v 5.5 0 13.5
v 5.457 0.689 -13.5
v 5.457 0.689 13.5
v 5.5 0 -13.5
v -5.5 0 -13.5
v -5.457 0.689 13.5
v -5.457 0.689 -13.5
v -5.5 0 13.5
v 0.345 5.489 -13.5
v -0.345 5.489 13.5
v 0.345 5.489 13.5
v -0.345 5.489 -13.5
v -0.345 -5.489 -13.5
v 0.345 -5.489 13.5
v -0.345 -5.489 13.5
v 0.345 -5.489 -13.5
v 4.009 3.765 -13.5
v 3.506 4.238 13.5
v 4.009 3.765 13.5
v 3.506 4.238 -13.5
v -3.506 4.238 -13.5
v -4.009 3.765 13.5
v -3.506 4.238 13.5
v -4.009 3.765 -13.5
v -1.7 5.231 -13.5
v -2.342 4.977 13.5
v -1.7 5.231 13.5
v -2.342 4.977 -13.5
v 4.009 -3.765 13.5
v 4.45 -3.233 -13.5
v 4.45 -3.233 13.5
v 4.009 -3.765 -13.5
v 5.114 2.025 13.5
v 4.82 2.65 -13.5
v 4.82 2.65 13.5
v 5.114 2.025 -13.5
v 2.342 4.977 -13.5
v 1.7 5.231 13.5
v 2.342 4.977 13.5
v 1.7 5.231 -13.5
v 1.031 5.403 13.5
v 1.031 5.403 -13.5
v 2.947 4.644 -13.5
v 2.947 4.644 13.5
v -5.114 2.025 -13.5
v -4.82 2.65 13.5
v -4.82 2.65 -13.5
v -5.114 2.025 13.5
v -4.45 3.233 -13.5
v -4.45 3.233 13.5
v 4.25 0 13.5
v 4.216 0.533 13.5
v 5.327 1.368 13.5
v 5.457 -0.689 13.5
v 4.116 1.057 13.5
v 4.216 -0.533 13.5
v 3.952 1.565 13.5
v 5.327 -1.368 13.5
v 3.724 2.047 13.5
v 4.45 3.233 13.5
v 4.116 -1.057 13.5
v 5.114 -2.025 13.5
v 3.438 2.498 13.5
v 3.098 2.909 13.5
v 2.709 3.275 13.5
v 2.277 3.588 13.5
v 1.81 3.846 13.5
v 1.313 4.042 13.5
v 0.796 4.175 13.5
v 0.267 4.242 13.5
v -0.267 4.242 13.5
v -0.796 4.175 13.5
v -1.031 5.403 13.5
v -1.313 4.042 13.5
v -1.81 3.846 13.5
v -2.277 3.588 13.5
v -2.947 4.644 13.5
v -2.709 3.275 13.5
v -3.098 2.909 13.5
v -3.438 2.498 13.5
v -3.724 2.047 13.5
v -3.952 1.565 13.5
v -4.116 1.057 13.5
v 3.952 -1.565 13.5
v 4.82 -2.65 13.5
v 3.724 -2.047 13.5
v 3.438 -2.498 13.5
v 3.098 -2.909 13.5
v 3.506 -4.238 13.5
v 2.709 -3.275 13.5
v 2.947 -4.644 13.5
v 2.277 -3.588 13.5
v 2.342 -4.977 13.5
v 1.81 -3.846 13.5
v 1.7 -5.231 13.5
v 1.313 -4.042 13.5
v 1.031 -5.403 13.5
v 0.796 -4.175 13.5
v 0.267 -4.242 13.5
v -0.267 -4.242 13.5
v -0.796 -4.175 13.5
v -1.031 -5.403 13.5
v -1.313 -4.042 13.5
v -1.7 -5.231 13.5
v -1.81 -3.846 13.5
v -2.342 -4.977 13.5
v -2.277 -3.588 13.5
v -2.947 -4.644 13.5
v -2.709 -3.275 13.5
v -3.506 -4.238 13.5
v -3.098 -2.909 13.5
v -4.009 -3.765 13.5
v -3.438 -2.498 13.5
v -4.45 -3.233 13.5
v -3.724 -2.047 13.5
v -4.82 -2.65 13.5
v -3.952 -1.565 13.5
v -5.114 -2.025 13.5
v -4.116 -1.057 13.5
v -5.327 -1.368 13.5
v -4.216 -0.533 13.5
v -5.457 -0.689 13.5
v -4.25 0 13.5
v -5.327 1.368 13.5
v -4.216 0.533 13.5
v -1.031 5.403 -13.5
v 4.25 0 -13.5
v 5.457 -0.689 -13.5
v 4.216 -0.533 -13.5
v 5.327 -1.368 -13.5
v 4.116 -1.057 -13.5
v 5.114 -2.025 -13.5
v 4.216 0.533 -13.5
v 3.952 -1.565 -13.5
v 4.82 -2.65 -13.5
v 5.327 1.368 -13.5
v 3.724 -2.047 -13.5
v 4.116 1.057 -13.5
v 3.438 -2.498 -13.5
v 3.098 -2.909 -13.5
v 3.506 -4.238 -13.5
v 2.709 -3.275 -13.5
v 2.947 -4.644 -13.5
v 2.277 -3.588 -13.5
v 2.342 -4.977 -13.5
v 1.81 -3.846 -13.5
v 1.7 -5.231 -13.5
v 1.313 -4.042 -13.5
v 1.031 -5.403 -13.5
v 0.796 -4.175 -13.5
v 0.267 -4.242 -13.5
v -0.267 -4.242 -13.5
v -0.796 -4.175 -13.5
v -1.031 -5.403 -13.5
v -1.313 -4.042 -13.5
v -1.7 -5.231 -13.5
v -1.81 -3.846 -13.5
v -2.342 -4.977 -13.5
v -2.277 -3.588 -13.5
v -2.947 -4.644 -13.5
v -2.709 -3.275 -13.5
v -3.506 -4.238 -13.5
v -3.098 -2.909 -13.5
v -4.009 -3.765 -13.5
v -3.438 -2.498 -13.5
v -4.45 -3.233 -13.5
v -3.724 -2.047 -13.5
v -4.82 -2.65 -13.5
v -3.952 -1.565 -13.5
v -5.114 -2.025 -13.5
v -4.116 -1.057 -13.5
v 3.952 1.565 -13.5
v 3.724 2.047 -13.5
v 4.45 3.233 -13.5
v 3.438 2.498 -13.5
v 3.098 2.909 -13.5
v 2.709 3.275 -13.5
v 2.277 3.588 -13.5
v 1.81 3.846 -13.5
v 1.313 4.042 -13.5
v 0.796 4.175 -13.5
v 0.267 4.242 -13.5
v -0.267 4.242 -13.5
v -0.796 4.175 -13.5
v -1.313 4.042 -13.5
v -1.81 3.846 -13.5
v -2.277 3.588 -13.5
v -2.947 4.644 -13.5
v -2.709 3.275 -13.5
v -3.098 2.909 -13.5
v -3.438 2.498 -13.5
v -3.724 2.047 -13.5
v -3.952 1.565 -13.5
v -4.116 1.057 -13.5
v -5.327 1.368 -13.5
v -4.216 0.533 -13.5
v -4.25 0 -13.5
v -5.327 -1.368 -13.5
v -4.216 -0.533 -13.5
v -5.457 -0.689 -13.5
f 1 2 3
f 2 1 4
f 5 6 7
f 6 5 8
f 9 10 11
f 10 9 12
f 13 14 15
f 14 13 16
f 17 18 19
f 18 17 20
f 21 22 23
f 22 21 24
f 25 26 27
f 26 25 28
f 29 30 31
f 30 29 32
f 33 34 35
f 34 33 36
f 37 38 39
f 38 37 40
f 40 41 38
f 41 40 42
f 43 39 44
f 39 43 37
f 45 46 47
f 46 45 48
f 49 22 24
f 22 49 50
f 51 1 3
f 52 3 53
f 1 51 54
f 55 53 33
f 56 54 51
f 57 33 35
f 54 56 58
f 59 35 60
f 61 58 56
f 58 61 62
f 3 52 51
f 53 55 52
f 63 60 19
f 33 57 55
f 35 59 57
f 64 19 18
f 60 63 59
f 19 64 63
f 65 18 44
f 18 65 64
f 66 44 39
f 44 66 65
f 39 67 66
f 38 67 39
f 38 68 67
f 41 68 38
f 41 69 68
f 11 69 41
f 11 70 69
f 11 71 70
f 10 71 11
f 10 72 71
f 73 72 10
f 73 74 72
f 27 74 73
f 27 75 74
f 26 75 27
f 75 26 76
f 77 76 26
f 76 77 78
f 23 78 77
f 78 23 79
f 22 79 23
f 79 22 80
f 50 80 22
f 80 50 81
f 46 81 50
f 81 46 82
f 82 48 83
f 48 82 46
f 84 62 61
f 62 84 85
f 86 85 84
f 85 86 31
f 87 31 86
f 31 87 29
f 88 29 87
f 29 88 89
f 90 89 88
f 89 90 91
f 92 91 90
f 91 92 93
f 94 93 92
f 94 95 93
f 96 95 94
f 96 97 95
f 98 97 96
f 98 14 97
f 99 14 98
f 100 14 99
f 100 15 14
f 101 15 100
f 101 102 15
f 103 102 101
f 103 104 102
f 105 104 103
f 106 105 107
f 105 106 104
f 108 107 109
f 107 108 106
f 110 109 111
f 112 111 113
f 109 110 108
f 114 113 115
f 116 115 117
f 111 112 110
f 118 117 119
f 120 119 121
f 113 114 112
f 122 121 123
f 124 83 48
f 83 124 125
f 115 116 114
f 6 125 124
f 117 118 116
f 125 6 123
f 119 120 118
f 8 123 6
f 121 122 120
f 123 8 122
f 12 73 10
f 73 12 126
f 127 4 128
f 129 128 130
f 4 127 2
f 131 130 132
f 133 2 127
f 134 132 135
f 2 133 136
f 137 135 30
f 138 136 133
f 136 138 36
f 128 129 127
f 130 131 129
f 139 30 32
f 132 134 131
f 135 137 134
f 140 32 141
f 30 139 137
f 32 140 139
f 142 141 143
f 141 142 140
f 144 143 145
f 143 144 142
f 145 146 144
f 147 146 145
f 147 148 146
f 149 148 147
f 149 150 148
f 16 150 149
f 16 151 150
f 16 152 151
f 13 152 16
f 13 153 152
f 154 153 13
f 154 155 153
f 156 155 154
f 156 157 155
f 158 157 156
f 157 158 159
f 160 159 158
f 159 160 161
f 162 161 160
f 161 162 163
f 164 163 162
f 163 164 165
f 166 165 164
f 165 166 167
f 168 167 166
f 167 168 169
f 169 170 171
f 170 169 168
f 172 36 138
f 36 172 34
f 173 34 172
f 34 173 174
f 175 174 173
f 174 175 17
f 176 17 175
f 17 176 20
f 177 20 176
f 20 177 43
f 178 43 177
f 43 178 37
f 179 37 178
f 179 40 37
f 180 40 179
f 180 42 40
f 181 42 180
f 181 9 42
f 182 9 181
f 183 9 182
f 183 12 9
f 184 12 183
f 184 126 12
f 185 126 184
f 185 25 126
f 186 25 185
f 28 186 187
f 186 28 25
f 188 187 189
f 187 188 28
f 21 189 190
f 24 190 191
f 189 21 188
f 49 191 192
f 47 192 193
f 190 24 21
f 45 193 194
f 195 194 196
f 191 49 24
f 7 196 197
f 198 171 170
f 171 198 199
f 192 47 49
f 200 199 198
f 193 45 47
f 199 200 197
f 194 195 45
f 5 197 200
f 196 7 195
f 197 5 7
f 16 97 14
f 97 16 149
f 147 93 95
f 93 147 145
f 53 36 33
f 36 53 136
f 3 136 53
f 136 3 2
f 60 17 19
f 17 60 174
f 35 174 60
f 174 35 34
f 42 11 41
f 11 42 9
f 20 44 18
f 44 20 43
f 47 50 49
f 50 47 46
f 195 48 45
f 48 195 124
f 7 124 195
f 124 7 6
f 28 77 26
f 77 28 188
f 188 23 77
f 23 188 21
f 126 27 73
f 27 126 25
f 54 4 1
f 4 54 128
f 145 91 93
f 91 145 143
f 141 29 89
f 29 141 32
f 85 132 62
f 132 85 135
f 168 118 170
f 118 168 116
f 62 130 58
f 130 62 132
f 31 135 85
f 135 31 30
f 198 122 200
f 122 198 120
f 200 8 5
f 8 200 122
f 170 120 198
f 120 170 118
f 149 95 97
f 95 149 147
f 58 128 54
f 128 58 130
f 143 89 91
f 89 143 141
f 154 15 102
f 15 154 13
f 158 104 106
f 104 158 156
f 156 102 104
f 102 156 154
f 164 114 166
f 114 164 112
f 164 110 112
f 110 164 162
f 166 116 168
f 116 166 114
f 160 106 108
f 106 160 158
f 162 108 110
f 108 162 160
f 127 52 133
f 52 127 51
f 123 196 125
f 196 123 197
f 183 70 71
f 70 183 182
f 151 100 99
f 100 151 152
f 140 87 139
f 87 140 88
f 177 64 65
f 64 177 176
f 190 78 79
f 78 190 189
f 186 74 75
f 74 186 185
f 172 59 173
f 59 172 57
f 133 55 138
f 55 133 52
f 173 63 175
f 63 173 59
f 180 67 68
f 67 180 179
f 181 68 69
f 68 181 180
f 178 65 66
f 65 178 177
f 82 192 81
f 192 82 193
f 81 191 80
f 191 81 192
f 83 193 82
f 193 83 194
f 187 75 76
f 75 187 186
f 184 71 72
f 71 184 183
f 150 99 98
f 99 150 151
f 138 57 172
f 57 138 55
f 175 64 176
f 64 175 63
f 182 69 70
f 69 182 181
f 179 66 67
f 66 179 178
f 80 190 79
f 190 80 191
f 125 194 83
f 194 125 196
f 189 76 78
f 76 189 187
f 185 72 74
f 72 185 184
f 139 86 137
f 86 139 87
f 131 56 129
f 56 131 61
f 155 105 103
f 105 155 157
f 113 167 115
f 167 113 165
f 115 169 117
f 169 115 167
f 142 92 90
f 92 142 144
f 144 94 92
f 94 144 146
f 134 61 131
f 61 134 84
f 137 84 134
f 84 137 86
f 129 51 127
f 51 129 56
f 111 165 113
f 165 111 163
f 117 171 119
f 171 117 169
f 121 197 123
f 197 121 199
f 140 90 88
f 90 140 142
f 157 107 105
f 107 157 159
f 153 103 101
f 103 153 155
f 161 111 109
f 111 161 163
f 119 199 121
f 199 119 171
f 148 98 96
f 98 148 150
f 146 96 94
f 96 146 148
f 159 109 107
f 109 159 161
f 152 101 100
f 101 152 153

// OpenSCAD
$fn = 50;


difference() {
	union() {
		translate(v = [0, 0, -13.5000000000]) {
			cylinder(h = 27, r = 5.5000000000);
		}
	}
	union() {
		translate(v = [0, 0, -100.0000000000]) {
			cylinder(h = 200, r = 4.2500000000);
		}
	}
}
